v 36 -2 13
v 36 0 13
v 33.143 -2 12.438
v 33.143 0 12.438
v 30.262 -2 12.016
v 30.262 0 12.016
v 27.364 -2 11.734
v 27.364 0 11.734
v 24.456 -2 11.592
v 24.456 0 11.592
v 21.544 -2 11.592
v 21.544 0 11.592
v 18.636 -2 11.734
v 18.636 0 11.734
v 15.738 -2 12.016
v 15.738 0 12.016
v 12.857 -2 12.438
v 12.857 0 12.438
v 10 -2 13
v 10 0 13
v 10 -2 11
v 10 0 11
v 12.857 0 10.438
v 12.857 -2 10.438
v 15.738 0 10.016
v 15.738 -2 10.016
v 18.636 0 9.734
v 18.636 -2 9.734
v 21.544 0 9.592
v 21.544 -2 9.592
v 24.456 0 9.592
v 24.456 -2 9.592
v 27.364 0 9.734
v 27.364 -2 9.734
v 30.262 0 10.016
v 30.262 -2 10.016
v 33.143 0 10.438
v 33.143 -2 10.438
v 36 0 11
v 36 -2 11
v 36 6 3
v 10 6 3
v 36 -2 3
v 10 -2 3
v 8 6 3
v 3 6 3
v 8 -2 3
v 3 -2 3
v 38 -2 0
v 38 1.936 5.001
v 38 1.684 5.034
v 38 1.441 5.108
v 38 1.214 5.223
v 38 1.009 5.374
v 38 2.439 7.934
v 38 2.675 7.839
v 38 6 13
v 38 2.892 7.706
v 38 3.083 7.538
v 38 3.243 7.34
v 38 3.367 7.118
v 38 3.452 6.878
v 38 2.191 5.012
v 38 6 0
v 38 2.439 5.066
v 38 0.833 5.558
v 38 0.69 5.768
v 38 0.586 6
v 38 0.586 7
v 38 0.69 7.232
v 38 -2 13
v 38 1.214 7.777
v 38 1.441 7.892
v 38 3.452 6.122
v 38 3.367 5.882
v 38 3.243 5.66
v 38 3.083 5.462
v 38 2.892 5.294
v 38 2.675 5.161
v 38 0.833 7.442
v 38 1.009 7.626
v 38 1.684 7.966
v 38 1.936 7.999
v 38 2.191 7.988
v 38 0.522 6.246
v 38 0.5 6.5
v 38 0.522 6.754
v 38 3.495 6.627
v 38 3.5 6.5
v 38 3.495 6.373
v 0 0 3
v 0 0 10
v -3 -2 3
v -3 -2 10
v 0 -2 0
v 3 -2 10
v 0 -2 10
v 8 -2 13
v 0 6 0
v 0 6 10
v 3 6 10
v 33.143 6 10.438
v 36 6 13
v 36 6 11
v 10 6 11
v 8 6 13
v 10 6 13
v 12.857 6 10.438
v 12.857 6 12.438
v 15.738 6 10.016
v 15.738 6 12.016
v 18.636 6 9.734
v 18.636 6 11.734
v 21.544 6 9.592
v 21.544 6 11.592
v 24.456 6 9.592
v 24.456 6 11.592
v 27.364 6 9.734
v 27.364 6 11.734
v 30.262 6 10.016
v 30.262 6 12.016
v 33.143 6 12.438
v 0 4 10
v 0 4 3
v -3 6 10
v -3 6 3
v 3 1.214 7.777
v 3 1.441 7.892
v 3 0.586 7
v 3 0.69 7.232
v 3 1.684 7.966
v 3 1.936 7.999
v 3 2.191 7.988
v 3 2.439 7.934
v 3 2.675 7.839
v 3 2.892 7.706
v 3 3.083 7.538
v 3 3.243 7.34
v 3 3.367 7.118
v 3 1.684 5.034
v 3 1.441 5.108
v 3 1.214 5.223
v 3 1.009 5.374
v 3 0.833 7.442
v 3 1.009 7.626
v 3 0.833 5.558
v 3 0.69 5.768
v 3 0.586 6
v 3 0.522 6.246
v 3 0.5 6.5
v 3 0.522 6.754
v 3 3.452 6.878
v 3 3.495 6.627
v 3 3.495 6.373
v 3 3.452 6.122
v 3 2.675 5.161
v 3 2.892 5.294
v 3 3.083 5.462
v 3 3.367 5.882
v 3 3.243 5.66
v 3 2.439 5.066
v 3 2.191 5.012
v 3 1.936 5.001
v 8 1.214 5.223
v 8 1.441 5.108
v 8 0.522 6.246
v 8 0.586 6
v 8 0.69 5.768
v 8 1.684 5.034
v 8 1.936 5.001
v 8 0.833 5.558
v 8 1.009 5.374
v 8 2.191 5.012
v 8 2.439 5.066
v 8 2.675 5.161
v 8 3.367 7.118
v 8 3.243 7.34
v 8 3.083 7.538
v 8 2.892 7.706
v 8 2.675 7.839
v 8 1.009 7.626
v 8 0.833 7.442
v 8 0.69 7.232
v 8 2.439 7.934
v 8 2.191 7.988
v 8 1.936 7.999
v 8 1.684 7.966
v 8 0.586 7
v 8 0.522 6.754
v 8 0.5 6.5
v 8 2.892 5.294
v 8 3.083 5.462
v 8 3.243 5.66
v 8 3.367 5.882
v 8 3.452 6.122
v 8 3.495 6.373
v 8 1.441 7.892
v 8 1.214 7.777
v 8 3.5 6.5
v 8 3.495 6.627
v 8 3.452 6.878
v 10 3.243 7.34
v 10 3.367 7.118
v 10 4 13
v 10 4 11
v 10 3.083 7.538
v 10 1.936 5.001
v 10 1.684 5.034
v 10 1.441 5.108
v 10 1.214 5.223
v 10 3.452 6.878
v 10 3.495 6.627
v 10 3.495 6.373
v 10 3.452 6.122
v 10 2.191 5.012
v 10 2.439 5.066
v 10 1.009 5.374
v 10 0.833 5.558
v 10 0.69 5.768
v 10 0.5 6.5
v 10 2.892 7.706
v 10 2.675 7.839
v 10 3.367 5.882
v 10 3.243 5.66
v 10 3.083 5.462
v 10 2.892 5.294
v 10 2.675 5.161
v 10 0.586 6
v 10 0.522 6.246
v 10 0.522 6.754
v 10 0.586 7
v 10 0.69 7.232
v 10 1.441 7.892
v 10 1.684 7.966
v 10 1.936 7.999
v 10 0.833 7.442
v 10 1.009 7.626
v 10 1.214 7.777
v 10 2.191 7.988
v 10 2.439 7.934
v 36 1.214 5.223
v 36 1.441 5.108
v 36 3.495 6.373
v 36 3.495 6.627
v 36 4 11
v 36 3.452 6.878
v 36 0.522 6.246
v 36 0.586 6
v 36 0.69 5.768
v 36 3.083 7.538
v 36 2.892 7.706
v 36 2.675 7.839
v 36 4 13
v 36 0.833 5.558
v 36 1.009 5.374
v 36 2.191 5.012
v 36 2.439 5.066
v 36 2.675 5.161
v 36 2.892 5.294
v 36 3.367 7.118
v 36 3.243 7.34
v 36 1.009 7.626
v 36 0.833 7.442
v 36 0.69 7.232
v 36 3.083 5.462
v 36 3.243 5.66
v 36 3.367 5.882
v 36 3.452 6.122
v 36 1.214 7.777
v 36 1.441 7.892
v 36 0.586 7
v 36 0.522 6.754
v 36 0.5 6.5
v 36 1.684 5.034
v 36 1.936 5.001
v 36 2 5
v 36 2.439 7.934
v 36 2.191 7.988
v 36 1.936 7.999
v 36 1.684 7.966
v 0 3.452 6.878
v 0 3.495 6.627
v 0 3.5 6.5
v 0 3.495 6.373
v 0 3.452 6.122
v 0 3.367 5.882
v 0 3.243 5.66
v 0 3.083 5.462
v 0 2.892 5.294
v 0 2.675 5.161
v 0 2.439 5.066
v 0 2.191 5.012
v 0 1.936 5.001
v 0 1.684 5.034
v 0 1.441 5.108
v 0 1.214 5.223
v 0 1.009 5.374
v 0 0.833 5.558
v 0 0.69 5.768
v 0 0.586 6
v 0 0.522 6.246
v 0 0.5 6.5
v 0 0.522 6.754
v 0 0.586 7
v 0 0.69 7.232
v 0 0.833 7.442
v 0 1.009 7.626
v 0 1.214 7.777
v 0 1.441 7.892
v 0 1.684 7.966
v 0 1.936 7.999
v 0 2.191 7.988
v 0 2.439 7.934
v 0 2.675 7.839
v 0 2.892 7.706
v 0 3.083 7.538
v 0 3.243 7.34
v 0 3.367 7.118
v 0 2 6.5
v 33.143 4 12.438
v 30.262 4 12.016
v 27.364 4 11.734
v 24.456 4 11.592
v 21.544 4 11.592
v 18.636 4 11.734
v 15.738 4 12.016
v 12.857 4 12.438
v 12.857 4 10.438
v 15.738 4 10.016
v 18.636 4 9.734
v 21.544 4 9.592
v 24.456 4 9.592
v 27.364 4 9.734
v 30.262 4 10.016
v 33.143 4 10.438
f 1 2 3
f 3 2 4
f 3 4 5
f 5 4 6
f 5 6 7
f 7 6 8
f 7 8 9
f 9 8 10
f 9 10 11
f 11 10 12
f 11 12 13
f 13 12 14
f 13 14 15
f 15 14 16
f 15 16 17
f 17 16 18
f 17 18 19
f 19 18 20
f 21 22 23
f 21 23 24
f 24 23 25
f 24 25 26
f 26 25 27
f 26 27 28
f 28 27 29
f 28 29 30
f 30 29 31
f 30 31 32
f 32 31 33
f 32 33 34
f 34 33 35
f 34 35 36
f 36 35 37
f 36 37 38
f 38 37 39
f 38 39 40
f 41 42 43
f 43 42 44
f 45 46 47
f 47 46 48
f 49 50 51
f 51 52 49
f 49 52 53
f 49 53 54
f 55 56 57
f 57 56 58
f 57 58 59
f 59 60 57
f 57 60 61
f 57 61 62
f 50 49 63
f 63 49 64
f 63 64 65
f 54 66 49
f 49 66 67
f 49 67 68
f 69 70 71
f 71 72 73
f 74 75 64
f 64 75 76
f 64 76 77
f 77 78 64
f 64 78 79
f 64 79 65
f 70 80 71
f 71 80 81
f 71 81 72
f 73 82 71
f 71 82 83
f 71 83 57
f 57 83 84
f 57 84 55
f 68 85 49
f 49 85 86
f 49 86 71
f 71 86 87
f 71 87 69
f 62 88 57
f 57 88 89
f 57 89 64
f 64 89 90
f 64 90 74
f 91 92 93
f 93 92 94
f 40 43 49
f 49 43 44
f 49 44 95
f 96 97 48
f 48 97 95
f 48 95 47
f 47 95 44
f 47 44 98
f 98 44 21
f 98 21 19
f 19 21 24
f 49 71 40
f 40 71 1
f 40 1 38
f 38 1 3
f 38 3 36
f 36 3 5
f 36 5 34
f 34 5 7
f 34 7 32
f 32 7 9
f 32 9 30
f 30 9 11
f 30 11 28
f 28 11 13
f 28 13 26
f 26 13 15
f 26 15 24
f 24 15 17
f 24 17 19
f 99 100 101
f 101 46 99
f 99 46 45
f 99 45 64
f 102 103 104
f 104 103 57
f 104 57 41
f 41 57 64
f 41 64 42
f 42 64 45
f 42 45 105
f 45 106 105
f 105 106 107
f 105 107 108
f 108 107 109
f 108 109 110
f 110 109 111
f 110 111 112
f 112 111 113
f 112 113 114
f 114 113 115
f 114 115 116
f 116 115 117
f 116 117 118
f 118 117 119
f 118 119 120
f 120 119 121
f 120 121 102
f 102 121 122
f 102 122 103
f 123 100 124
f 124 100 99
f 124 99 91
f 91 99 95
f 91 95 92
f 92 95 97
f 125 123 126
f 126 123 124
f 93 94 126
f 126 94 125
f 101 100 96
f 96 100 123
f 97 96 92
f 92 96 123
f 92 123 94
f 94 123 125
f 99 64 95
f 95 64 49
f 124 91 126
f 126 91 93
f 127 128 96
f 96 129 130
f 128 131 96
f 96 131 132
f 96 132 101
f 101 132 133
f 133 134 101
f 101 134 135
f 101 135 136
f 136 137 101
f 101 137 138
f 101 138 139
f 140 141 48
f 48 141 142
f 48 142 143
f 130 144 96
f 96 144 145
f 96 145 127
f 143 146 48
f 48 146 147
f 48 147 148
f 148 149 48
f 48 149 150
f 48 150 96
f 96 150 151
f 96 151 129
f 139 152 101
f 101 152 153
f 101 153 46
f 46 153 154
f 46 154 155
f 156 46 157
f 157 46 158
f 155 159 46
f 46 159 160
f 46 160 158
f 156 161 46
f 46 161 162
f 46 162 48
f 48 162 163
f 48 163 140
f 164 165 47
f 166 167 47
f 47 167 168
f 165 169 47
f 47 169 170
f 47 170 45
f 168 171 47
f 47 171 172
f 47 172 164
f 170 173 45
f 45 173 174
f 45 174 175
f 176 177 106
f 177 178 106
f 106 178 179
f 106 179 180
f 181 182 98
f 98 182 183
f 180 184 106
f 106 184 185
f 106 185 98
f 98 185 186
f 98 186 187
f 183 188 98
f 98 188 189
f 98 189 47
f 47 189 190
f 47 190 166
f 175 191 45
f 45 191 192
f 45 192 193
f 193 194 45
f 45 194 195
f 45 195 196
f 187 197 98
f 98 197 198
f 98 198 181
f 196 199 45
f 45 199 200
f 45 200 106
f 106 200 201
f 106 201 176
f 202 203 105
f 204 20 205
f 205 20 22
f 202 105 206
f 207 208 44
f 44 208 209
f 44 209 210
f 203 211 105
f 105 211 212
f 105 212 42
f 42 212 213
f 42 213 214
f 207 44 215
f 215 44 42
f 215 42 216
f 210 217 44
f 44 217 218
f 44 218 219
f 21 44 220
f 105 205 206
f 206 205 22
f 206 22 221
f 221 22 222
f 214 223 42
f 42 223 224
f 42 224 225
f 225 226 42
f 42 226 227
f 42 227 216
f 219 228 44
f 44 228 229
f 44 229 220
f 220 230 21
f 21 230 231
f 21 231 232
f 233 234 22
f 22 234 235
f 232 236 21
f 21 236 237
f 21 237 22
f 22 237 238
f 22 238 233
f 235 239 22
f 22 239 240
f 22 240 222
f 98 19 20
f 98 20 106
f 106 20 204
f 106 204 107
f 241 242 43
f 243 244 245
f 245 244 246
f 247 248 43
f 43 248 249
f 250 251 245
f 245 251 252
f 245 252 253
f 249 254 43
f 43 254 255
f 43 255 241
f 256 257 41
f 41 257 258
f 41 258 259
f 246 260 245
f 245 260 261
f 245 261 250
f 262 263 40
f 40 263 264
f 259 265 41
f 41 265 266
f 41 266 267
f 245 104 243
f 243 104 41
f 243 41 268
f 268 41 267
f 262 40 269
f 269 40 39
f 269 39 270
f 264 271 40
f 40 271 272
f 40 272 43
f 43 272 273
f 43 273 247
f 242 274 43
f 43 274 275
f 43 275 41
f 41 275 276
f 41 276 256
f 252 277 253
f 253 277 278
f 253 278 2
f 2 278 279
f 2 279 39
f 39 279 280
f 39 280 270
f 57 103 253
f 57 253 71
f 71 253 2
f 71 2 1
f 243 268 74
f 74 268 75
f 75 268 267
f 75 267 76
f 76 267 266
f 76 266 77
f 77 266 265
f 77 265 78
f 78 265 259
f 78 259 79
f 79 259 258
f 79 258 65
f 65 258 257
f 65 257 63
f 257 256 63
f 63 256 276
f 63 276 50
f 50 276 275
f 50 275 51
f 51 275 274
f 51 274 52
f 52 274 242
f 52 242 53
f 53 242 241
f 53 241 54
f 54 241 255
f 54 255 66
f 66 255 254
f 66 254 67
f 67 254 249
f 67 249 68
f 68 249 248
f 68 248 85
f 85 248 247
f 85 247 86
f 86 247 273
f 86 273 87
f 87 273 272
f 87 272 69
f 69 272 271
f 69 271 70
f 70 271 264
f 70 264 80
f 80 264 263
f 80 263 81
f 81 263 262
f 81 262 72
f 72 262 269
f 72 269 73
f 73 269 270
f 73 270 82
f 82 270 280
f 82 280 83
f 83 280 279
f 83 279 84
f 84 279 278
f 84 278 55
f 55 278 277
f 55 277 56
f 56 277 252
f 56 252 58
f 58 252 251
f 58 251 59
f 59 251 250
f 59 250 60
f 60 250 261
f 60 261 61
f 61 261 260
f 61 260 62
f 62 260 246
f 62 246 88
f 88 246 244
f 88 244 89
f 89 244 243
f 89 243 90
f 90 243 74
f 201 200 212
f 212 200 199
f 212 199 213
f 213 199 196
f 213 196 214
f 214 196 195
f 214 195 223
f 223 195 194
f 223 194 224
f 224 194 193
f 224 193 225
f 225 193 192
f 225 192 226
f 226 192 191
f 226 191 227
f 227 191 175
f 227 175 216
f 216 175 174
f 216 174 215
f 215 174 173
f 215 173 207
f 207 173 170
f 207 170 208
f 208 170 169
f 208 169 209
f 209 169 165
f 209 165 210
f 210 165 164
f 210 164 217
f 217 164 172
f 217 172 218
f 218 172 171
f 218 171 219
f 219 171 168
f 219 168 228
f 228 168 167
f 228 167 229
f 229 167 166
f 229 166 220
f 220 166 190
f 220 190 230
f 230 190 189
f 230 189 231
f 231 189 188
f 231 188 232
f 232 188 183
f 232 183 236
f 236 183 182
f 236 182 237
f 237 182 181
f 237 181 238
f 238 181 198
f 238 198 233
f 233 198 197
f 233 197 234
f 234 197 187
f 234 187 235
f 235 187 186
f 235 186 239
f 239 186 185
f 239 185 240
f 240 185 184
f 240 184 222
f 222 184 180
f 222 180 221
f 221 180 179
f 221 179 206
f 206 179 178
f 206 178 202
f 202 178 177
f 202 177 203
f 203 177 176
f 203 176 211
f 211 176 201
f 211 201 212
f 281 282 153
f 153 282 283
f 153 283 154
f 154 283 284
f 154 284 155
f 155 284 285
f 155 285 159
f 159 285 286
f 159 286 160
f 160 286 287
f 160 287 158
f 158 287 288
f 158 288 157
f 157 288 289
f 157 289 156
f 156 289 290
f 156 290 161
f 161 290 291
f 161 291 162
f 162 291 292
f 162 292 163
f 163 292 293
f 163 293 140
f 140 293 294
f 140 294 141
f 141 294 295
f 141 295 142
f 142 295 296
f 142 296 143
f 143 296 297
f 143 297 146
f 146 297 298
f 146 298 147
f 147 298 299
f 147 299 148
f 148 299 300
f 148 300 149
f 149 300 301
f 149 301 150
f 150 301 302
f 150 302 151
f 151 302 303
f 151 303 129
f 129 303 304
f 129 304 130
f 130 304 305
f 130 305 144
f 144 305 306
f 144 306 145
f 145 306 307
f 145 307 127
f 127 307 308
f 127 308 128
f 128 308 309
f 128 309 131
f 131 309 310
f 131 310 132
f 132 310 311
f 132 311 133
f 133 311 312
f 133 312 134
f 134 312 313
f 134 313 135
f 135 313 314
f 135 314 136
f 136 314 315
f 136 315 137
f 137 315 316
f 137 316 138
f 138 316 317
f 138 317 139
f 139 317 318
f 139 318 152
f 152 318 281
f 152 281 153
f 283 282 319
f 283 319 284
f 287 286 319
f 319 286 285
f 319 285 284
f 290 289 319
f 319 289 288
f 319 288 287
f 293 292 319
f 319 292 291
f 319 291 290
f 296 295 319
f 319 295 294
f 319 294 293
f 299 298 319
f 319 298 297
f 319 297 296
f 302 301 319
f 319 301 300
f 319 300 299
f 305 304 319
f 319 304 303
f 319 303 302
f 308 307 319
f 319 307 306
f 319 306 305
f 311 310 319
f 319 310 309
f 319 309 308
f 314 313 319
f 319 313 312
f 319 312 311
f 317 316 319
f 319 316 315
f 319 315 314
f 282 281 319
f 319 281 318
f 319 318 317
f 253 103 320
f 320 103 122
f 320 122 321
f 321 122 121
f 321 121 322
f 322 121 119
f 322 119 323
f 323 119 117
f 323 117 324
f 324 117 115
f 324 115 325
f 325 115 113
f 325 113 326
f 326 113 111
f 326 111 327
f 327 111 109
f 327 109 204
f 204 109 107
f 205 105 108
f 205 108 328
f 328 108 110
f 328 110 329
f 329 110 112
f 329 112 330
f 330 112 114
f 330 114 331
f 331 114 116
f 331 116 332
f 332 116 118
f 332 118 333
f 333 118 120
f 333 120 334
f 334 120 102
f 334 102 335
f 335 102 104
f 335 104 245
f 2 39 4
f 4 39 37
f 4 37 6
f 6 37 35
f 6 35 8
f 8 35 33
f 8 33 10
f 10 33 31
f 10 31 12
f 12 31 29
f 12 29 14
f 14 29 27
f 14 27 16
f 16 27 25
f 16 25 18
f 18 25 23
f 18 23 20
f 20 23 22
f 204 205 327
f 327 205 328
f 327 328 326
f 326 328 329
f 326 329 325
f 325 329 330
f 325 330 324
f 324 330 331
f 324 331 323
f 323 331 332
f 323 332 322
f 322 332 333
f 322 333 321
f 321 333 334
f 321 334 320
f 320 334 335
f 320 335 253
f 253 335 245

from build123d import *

# Parameters (mm, degrees)
SKETCH_1_W                      = 35
SKETCH_1_H                      = 8
EXTRUDE_2_DEPTH                 = 10
CUT_EXTRUDE_4_DEPTH             = 3
SKETCH_11_W                     = 35
SKETCH_11_H                     = 8
CUT_EXTRUDE_5_DEPTH             = 7
SKETCH_14_W                     = 2
SKETCH_14_H                     = 8
EXTRUDE_7_DEPTH                 = 10
CUT_EXTRUDE_6_DEPTH             = 38.815340802
CUT_EXTRUDE_6_DEPTH_BACK        = 3
SKETCH_12_R                     = 1.5
EXTRUDE_10_DEPTH                = 8
CUT_EXTRUDE_8_REACH             = 42.608
SKETCH_31_W                     = 26
SKETCH_31_H                     = 4
CUT_EXTRUDE_8_DIRECTION_2_DEPTH = 41.607881008


with BuildPart() as part:
    # 草图1 → 凸台-拉伸2 (new body)
    with BuildSketch(Plane.XY):
        Polygon((0, 4), (-3, 6), (-3, 2), (0, 2), align=None)
        Polygon((0, 6), (0, 4), (0, 0), (0, -2), (3, -2), (3, 6), align=None)
        Polygon((0, 2), (-3, 2), (-3, -2), (0, 0), align=None)
        with Locations((20.5, 2)):
            Rectangle(SKETCH_1_W, SKETCH_1_H)
    extrude(amount=EXTRUDE_2_DEPTH)

    # 草图1<4> → 切除-拉伸4 (cut)
    with BuildSketch(Plane.XY):
        Polygon((0, 4), (-3, 6), (-3, 2), (0, 2), align=None)
        Polygon((0, 2), (-3, 2), (-3, -2), (0, 0), align=None)
    extrude(amount=CUT_EXTRUDE_4_DEPTH, mode=Mode.SUBTRACT)

    # 草图11 → 切除-拉伸5 (cut)
    with BuildSketch(Plane.XY.offset(10)):
        with Locations((20.5, 2)):
            Rectangle(SKETCH_11_W, SKETCH_11_H)
    extrude(amount=-CUT_EXTRUDE_5_DEPTH, mode=Mode.SUBTRACT)

    # 草图14 → 凸台-拉伸7 (add)
    with BuildSketch(Plane.XY.offset(3)):
        with Locations((37, 2)):
            Rectangle(SKETCH_14_W, SKETCH_14_H)
        with Locations((9, 2)):
            Rectangle(SKETCH_14_W, SKETCH_14_H)
    extrude(amount=EXTRUDE_7_DEPTH)

    # 草图12 → 切除-拉伸6 (cut, two sides: drawn at the far end of the back side and taken through both)
    with BuildSketch(Plane(origin=(3, 0, 0), x_dir=(0, 0, -1), z_dir=(1, 0, 0)).offset(-CUT_EXTRUDE_6_DEPTH_BACK)):
        with Locations((-6.5, 2)):
            Circle(SKETCH_12_R)
    extrude(amount=CUT_EXTRUDE_6_DEPTH + CUT_EXTRUDE_6_DEPTH_BACK, mode=Mode.SUBTRACT)

    # 草图30 → 凸台-拉伸10 (add)
    with BuildSketch(Plane(origin=(0, 6, 0), x_dir=(1, 0, 0), z_dir=(0, 1, 0))):
        with BuildLine():
            Line((10, -11), (10, -13))
            ThreePointArc((10, -13), (23, -11.574738582), (36, -13))
            Line((36, -13), (36, -11))
            ThreePointArc((36, -11), (23, -9.574738582), (10, -11))
        make_face()
    extrude(amount=-EXTRUDE_10_DEPTH)

    # 草图31 → 切除-拉伸8 (cut, up to next)
    with BuildSketch(Plane.XY.offset(13), mode=Mode.PRIVATE) as cut_extrude_8_sk1:
        with Locations((23, 2)):
            Rectangle(SKETCH_31_W, SKETCH_31_H)
    cut_extrude_8_tool1 = extrude(cut_extrude_8_sk1.sketch, amount=-CUT_EXTRUDE_8_REACH, mode=Mode.PRIVATE) & part.part
    add(cut_extrude_8_tool1.solids().sort_by_distance((23, 2, 13))[0], mode=Mode.SUBTRACT)

    # 草图31 → 切除-拉伸8 direction 2 (cut)
    with BuildSketch(Plane.XY.offset(13)):
        with Locations((23, 2)):
            Rectangle(SKETCH_31_W, SKETCH_31_H)
    extrude(amount=CUT_EXTRUDE_8_DIRECTION_2_DEPTH, mode=Mode.SUBTRACT)


solid = part.part
